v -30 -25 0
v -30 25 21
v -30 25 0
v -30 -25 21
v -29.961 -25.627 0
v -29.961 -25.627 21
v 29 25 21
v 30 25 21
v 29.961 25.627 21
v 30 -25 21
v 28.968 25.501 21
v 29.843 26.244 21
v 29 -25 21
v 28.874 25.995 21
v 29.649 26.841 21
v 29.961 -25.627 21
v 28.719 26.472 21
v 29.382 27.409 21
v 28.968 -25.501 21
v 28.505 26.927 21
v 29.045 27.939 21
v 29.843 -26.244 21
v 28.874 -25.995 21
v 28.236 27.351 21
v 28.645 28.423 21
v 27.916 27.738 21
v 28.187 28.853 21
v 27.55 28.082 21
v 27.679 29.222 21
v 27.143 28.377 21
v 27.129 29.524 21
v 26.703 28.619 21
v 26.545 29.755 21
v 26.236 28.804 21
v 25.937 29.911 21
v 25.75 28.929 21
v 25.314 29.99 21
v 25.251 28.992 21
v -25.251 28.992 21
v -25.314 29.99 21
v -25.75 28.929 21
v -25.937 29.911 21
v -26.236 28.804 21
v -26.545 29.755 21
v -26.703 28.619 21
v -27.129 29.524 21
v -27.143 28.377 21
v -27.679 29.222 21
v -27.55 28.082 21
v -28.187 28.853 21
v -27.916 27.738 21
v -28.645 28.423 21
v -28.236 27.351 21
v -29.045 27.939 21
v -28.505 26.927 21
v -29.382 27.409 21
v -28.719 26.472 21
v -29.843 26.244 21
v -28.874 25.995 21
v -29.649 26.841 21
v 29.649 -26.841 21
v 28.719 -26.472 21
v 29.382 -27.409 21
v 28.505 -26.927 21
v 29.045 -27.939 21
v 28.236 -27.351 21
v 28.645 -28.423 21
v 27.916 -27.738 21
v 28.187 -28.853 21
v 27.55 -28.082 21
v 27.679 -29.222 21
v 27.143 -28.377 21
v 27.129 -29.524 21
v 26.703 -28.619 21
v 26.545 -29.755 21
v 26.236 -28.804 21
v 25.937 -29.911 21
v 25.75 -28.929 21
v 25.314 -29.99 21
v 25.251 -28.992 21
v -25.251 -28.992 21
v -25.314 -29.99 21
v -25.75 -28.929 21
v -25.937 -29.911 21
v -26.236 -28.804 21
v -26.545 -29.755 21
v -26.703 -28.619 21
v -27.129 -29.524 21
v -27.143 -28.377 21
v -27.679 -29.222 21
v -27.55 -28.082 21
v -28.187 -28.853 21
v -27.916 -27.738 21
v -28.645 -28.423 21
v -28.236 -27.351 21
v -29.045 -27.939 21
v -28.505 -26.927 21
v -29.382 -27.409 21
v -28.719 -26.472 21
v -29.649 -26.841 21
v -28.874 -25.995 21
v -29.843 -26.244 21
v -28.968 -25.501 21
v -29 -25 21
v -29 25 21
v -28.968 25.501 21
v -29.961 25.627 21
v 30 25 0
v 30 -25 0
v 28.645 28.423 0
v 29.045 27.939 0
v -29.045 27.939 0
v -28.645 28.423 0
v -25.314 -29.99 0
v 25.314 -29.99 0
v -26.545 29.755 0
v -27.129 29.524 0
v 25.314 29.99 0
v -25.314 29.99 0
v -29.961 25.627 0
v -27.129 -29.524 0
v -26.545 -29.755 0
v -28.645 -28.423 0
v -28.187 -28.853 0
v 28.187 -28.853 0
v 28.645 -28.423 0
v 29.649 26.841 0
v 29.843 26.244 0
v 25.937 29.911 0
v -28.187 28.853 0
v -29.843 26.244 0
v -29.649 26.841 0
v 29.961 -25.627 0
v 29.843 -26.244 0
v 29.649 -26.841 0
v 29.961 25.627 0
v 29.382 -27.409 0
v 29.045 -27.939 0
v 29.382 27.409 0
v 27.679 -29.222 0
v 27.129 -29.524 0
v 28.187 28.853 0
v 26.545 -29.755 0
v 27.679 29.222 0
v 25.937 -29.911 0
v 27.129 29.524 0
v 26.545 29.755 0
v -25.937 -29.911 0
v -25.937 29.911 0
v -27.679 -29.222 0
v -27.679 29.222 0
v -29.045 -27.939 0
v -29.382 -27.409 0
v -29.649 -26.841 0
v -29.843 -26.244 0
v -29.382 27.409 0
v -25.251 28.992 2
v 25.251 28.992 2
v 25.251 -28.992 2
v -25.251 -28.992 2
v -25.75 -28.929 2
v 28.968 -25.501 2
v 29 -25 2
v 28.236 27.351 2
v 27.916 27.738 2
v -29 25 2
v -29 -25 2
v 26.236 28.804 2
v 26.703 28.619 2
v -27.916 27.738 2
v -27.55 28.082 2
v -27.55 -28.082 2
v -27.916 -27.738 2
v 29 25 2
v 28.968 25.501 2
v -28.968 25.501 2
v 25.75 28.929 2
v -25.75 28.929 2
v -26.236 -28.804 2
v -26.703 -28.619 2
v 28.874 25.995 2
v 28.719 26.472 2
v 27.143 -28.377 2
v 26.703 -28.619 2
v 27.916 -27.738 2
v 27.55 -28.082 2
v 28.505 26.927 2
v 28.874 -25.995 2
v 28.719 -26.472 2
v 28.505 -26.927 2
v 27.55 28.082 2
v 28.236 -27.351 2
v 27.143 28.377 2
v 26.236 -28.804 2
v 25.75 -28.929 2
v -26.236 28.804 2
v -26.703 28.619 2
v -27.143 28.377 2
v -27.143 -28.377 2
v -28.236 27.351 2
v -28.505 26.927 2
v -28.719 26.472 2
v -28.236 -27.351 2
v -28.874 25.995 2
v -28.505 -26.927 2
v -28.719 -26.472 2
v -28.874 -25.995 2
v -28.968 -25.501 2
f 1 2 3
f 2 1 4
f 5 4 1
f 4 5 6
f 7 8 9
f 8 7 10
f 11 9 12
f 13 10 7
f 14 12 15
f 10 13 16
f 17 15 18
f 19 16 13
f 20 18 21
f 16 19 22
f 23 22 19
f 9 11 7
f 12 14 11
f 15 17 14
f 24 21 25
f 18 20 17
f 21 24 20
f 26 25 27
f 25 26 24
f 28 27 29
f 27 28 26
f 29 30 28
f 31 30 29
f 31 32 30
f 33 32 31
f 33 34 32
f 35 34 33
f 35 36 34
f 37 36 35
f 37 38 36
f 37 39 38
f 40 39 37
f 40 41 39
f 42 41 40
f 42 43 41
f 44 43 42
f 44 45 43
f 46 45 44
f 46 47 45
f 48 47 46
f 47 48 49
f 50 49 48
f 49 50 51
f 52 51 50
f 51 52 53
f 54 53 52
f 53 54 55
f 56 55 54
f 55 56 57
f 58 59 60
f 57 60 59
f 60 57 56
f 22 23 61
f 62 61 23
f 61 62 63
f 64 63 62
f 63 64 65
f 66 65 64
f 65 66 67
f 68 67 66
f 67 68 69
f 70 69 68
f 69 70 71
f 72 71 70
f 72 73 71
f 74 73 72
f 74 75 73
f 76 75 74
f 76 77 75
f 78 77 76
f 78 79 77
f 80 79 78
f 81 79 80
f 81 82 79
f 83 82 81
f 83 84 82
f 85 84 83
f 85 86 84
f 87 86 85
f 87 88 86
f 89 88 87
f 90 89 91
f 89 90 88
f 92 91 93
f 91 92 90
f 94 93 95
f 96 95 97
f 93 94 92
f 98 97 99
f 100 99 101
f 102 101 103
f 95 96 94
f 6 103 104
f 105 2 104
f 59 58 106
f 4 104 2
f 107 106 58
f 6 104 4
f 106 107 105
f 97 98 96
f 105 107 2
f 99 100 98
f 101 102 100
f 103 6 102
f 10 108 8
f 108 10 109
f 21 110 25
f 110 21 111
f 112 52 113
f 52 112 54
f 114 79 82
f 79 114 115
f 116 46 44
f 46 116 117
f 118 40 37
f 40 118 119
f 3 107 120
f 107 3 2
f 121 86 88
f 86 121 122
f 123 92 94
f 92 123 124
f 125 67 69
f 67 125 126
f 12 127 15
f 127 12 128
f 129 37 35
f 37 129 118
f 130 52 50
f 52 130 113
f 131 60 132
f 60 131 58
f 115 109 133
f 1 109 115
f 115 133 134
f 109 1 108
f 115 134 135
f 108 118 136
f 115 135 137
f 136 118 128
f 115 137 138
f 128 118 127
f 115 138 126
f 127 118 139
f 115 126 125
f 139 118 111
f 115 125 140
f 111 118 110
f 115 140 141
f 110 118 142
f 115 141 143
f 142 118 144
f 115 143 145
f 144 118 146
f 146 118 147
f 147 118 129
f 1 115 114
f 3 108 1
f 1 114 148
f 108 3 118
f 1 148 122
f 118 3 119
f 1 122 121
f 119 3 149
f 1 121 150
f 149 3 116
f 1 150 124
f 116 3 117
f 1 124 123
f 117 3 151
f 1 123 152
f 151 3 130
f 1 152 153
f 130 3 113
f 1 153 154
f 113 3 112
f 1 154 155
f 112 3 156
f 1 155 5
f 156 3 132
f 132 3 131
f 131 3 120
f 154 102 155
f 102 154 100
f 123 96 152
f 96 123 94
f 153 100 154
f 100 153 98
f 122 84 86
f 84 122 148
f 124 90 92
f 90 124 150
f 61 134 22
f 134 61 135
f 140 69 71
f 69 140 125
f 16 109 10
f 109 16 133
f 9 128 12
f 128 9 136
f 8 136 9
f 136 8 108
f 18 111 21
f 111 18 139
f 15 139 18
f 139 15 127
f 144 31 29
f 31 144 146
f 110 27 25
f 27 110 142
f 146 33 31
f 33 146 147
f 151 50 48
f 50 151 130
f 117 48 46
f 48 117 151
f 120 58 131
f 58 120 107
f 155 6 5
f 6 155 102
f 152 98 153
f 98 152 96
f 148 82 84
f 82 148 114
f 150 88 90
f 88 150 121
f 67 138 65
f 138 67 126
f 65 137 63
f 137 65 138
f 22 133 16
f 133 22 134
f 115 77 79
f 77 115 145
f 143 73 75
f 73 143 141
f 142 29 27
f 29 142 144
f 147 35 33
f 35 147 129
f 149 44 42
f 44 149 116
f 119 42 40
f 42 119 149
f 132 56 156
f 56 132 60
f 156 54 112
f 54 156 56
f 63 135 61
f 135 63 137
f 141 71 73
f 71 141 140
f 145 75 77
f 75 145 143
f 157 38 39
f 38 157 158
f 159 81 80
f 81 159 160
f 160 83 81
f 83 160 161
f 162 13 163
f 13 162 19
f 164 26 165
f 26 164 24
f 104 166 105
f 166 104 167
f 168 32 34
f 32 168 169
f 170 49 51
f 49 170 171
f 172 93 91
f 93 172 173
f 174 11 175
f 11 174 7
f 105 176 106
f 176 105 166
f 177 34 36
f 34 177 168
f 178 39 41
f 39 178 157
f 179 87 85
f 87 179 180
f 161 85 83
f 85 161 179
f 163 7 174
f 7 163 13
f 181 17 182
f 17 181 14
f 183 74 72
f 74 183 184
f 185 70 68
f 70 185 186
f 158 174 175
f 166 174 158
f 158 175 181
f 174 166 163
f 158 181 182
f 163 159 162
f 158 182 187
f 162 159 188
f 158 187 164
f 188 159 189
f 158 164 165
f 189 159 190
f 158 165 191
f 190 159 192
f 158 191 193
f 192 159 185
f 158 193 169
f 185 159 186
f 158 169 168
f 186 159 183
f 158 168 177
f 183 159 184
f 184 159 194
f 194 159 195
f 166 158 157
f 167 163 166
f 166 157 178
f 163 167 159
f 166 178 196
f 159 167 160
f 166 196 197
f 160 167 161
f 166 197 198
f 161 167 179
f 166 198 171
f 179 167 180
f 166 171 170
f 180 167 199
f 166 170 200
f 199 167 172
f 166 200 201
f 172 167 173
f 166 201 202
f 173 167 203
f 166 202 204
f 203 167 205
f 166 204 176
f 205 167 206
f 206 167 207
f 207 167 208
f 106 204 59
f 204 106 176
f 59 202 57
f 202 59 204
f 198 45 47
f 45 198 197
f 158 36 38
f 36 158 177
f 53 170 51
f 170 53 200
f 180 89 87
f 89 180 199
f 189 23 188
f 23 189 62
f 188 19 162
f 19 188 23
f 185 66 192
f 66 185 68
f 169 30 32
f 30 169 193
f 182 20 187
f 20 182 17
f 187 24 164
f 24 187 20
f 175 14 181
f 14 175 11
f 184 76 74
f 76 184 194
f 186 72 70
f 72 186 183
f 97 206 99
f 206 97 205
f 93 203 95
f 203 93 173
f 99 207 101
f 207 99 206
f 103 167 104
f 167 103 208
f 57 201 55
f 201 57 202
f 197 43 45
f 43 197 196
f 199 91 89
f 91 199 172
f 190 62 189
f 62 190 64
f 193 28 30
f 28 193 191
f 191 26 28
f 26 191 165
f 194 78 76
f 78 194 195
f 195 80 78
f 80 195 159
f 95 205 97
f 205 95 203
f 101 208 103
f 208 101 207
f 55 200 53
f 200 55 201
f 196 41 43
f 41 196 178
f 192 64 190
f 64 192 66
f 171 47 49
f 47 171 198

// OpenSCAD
$fn = 50;


difference() {
	union() {
		hull() {
			translate(v = [-25.0000000000, 25.0000000000, 0]) {
				cylinder(h = 21, r = 5);
			}
			translate(v = [25.0000000000, 25.0000000000, 0]) {
				cylinder(h = 21, r = 5);
			}
			translate(v = [-25.0000000000, -25.0000000000, 0]) {
				cylinder(h = 21, r = 5);
			}
			translate(v = [25.0000000000, -25.0000000000, 0]) {
				cylinder(h = 21, r = 5);
			}
		}
	}
	union() {
		translate(v = [0, 0, 2]) {
			hull() {
				translate(v = [-25.0000000000, 25.0000000000, 0]) {
					cylinder(h = 19, r = 4);
				}
				translate(v = [25.0000000000, 25.0000000000, 0]) {
					cylinder(h = 19, r = 4);
				}
				translate(v = [-25.0000000000, -25.0000000000, 0]) {
					cylinder(h = 19, r = 4);
				}
				translate(v = [25.0000000000, -25.0000000000, 0]) {
					cylinder(h = 19, r = 4);
				}
			}
		}
	}
}
